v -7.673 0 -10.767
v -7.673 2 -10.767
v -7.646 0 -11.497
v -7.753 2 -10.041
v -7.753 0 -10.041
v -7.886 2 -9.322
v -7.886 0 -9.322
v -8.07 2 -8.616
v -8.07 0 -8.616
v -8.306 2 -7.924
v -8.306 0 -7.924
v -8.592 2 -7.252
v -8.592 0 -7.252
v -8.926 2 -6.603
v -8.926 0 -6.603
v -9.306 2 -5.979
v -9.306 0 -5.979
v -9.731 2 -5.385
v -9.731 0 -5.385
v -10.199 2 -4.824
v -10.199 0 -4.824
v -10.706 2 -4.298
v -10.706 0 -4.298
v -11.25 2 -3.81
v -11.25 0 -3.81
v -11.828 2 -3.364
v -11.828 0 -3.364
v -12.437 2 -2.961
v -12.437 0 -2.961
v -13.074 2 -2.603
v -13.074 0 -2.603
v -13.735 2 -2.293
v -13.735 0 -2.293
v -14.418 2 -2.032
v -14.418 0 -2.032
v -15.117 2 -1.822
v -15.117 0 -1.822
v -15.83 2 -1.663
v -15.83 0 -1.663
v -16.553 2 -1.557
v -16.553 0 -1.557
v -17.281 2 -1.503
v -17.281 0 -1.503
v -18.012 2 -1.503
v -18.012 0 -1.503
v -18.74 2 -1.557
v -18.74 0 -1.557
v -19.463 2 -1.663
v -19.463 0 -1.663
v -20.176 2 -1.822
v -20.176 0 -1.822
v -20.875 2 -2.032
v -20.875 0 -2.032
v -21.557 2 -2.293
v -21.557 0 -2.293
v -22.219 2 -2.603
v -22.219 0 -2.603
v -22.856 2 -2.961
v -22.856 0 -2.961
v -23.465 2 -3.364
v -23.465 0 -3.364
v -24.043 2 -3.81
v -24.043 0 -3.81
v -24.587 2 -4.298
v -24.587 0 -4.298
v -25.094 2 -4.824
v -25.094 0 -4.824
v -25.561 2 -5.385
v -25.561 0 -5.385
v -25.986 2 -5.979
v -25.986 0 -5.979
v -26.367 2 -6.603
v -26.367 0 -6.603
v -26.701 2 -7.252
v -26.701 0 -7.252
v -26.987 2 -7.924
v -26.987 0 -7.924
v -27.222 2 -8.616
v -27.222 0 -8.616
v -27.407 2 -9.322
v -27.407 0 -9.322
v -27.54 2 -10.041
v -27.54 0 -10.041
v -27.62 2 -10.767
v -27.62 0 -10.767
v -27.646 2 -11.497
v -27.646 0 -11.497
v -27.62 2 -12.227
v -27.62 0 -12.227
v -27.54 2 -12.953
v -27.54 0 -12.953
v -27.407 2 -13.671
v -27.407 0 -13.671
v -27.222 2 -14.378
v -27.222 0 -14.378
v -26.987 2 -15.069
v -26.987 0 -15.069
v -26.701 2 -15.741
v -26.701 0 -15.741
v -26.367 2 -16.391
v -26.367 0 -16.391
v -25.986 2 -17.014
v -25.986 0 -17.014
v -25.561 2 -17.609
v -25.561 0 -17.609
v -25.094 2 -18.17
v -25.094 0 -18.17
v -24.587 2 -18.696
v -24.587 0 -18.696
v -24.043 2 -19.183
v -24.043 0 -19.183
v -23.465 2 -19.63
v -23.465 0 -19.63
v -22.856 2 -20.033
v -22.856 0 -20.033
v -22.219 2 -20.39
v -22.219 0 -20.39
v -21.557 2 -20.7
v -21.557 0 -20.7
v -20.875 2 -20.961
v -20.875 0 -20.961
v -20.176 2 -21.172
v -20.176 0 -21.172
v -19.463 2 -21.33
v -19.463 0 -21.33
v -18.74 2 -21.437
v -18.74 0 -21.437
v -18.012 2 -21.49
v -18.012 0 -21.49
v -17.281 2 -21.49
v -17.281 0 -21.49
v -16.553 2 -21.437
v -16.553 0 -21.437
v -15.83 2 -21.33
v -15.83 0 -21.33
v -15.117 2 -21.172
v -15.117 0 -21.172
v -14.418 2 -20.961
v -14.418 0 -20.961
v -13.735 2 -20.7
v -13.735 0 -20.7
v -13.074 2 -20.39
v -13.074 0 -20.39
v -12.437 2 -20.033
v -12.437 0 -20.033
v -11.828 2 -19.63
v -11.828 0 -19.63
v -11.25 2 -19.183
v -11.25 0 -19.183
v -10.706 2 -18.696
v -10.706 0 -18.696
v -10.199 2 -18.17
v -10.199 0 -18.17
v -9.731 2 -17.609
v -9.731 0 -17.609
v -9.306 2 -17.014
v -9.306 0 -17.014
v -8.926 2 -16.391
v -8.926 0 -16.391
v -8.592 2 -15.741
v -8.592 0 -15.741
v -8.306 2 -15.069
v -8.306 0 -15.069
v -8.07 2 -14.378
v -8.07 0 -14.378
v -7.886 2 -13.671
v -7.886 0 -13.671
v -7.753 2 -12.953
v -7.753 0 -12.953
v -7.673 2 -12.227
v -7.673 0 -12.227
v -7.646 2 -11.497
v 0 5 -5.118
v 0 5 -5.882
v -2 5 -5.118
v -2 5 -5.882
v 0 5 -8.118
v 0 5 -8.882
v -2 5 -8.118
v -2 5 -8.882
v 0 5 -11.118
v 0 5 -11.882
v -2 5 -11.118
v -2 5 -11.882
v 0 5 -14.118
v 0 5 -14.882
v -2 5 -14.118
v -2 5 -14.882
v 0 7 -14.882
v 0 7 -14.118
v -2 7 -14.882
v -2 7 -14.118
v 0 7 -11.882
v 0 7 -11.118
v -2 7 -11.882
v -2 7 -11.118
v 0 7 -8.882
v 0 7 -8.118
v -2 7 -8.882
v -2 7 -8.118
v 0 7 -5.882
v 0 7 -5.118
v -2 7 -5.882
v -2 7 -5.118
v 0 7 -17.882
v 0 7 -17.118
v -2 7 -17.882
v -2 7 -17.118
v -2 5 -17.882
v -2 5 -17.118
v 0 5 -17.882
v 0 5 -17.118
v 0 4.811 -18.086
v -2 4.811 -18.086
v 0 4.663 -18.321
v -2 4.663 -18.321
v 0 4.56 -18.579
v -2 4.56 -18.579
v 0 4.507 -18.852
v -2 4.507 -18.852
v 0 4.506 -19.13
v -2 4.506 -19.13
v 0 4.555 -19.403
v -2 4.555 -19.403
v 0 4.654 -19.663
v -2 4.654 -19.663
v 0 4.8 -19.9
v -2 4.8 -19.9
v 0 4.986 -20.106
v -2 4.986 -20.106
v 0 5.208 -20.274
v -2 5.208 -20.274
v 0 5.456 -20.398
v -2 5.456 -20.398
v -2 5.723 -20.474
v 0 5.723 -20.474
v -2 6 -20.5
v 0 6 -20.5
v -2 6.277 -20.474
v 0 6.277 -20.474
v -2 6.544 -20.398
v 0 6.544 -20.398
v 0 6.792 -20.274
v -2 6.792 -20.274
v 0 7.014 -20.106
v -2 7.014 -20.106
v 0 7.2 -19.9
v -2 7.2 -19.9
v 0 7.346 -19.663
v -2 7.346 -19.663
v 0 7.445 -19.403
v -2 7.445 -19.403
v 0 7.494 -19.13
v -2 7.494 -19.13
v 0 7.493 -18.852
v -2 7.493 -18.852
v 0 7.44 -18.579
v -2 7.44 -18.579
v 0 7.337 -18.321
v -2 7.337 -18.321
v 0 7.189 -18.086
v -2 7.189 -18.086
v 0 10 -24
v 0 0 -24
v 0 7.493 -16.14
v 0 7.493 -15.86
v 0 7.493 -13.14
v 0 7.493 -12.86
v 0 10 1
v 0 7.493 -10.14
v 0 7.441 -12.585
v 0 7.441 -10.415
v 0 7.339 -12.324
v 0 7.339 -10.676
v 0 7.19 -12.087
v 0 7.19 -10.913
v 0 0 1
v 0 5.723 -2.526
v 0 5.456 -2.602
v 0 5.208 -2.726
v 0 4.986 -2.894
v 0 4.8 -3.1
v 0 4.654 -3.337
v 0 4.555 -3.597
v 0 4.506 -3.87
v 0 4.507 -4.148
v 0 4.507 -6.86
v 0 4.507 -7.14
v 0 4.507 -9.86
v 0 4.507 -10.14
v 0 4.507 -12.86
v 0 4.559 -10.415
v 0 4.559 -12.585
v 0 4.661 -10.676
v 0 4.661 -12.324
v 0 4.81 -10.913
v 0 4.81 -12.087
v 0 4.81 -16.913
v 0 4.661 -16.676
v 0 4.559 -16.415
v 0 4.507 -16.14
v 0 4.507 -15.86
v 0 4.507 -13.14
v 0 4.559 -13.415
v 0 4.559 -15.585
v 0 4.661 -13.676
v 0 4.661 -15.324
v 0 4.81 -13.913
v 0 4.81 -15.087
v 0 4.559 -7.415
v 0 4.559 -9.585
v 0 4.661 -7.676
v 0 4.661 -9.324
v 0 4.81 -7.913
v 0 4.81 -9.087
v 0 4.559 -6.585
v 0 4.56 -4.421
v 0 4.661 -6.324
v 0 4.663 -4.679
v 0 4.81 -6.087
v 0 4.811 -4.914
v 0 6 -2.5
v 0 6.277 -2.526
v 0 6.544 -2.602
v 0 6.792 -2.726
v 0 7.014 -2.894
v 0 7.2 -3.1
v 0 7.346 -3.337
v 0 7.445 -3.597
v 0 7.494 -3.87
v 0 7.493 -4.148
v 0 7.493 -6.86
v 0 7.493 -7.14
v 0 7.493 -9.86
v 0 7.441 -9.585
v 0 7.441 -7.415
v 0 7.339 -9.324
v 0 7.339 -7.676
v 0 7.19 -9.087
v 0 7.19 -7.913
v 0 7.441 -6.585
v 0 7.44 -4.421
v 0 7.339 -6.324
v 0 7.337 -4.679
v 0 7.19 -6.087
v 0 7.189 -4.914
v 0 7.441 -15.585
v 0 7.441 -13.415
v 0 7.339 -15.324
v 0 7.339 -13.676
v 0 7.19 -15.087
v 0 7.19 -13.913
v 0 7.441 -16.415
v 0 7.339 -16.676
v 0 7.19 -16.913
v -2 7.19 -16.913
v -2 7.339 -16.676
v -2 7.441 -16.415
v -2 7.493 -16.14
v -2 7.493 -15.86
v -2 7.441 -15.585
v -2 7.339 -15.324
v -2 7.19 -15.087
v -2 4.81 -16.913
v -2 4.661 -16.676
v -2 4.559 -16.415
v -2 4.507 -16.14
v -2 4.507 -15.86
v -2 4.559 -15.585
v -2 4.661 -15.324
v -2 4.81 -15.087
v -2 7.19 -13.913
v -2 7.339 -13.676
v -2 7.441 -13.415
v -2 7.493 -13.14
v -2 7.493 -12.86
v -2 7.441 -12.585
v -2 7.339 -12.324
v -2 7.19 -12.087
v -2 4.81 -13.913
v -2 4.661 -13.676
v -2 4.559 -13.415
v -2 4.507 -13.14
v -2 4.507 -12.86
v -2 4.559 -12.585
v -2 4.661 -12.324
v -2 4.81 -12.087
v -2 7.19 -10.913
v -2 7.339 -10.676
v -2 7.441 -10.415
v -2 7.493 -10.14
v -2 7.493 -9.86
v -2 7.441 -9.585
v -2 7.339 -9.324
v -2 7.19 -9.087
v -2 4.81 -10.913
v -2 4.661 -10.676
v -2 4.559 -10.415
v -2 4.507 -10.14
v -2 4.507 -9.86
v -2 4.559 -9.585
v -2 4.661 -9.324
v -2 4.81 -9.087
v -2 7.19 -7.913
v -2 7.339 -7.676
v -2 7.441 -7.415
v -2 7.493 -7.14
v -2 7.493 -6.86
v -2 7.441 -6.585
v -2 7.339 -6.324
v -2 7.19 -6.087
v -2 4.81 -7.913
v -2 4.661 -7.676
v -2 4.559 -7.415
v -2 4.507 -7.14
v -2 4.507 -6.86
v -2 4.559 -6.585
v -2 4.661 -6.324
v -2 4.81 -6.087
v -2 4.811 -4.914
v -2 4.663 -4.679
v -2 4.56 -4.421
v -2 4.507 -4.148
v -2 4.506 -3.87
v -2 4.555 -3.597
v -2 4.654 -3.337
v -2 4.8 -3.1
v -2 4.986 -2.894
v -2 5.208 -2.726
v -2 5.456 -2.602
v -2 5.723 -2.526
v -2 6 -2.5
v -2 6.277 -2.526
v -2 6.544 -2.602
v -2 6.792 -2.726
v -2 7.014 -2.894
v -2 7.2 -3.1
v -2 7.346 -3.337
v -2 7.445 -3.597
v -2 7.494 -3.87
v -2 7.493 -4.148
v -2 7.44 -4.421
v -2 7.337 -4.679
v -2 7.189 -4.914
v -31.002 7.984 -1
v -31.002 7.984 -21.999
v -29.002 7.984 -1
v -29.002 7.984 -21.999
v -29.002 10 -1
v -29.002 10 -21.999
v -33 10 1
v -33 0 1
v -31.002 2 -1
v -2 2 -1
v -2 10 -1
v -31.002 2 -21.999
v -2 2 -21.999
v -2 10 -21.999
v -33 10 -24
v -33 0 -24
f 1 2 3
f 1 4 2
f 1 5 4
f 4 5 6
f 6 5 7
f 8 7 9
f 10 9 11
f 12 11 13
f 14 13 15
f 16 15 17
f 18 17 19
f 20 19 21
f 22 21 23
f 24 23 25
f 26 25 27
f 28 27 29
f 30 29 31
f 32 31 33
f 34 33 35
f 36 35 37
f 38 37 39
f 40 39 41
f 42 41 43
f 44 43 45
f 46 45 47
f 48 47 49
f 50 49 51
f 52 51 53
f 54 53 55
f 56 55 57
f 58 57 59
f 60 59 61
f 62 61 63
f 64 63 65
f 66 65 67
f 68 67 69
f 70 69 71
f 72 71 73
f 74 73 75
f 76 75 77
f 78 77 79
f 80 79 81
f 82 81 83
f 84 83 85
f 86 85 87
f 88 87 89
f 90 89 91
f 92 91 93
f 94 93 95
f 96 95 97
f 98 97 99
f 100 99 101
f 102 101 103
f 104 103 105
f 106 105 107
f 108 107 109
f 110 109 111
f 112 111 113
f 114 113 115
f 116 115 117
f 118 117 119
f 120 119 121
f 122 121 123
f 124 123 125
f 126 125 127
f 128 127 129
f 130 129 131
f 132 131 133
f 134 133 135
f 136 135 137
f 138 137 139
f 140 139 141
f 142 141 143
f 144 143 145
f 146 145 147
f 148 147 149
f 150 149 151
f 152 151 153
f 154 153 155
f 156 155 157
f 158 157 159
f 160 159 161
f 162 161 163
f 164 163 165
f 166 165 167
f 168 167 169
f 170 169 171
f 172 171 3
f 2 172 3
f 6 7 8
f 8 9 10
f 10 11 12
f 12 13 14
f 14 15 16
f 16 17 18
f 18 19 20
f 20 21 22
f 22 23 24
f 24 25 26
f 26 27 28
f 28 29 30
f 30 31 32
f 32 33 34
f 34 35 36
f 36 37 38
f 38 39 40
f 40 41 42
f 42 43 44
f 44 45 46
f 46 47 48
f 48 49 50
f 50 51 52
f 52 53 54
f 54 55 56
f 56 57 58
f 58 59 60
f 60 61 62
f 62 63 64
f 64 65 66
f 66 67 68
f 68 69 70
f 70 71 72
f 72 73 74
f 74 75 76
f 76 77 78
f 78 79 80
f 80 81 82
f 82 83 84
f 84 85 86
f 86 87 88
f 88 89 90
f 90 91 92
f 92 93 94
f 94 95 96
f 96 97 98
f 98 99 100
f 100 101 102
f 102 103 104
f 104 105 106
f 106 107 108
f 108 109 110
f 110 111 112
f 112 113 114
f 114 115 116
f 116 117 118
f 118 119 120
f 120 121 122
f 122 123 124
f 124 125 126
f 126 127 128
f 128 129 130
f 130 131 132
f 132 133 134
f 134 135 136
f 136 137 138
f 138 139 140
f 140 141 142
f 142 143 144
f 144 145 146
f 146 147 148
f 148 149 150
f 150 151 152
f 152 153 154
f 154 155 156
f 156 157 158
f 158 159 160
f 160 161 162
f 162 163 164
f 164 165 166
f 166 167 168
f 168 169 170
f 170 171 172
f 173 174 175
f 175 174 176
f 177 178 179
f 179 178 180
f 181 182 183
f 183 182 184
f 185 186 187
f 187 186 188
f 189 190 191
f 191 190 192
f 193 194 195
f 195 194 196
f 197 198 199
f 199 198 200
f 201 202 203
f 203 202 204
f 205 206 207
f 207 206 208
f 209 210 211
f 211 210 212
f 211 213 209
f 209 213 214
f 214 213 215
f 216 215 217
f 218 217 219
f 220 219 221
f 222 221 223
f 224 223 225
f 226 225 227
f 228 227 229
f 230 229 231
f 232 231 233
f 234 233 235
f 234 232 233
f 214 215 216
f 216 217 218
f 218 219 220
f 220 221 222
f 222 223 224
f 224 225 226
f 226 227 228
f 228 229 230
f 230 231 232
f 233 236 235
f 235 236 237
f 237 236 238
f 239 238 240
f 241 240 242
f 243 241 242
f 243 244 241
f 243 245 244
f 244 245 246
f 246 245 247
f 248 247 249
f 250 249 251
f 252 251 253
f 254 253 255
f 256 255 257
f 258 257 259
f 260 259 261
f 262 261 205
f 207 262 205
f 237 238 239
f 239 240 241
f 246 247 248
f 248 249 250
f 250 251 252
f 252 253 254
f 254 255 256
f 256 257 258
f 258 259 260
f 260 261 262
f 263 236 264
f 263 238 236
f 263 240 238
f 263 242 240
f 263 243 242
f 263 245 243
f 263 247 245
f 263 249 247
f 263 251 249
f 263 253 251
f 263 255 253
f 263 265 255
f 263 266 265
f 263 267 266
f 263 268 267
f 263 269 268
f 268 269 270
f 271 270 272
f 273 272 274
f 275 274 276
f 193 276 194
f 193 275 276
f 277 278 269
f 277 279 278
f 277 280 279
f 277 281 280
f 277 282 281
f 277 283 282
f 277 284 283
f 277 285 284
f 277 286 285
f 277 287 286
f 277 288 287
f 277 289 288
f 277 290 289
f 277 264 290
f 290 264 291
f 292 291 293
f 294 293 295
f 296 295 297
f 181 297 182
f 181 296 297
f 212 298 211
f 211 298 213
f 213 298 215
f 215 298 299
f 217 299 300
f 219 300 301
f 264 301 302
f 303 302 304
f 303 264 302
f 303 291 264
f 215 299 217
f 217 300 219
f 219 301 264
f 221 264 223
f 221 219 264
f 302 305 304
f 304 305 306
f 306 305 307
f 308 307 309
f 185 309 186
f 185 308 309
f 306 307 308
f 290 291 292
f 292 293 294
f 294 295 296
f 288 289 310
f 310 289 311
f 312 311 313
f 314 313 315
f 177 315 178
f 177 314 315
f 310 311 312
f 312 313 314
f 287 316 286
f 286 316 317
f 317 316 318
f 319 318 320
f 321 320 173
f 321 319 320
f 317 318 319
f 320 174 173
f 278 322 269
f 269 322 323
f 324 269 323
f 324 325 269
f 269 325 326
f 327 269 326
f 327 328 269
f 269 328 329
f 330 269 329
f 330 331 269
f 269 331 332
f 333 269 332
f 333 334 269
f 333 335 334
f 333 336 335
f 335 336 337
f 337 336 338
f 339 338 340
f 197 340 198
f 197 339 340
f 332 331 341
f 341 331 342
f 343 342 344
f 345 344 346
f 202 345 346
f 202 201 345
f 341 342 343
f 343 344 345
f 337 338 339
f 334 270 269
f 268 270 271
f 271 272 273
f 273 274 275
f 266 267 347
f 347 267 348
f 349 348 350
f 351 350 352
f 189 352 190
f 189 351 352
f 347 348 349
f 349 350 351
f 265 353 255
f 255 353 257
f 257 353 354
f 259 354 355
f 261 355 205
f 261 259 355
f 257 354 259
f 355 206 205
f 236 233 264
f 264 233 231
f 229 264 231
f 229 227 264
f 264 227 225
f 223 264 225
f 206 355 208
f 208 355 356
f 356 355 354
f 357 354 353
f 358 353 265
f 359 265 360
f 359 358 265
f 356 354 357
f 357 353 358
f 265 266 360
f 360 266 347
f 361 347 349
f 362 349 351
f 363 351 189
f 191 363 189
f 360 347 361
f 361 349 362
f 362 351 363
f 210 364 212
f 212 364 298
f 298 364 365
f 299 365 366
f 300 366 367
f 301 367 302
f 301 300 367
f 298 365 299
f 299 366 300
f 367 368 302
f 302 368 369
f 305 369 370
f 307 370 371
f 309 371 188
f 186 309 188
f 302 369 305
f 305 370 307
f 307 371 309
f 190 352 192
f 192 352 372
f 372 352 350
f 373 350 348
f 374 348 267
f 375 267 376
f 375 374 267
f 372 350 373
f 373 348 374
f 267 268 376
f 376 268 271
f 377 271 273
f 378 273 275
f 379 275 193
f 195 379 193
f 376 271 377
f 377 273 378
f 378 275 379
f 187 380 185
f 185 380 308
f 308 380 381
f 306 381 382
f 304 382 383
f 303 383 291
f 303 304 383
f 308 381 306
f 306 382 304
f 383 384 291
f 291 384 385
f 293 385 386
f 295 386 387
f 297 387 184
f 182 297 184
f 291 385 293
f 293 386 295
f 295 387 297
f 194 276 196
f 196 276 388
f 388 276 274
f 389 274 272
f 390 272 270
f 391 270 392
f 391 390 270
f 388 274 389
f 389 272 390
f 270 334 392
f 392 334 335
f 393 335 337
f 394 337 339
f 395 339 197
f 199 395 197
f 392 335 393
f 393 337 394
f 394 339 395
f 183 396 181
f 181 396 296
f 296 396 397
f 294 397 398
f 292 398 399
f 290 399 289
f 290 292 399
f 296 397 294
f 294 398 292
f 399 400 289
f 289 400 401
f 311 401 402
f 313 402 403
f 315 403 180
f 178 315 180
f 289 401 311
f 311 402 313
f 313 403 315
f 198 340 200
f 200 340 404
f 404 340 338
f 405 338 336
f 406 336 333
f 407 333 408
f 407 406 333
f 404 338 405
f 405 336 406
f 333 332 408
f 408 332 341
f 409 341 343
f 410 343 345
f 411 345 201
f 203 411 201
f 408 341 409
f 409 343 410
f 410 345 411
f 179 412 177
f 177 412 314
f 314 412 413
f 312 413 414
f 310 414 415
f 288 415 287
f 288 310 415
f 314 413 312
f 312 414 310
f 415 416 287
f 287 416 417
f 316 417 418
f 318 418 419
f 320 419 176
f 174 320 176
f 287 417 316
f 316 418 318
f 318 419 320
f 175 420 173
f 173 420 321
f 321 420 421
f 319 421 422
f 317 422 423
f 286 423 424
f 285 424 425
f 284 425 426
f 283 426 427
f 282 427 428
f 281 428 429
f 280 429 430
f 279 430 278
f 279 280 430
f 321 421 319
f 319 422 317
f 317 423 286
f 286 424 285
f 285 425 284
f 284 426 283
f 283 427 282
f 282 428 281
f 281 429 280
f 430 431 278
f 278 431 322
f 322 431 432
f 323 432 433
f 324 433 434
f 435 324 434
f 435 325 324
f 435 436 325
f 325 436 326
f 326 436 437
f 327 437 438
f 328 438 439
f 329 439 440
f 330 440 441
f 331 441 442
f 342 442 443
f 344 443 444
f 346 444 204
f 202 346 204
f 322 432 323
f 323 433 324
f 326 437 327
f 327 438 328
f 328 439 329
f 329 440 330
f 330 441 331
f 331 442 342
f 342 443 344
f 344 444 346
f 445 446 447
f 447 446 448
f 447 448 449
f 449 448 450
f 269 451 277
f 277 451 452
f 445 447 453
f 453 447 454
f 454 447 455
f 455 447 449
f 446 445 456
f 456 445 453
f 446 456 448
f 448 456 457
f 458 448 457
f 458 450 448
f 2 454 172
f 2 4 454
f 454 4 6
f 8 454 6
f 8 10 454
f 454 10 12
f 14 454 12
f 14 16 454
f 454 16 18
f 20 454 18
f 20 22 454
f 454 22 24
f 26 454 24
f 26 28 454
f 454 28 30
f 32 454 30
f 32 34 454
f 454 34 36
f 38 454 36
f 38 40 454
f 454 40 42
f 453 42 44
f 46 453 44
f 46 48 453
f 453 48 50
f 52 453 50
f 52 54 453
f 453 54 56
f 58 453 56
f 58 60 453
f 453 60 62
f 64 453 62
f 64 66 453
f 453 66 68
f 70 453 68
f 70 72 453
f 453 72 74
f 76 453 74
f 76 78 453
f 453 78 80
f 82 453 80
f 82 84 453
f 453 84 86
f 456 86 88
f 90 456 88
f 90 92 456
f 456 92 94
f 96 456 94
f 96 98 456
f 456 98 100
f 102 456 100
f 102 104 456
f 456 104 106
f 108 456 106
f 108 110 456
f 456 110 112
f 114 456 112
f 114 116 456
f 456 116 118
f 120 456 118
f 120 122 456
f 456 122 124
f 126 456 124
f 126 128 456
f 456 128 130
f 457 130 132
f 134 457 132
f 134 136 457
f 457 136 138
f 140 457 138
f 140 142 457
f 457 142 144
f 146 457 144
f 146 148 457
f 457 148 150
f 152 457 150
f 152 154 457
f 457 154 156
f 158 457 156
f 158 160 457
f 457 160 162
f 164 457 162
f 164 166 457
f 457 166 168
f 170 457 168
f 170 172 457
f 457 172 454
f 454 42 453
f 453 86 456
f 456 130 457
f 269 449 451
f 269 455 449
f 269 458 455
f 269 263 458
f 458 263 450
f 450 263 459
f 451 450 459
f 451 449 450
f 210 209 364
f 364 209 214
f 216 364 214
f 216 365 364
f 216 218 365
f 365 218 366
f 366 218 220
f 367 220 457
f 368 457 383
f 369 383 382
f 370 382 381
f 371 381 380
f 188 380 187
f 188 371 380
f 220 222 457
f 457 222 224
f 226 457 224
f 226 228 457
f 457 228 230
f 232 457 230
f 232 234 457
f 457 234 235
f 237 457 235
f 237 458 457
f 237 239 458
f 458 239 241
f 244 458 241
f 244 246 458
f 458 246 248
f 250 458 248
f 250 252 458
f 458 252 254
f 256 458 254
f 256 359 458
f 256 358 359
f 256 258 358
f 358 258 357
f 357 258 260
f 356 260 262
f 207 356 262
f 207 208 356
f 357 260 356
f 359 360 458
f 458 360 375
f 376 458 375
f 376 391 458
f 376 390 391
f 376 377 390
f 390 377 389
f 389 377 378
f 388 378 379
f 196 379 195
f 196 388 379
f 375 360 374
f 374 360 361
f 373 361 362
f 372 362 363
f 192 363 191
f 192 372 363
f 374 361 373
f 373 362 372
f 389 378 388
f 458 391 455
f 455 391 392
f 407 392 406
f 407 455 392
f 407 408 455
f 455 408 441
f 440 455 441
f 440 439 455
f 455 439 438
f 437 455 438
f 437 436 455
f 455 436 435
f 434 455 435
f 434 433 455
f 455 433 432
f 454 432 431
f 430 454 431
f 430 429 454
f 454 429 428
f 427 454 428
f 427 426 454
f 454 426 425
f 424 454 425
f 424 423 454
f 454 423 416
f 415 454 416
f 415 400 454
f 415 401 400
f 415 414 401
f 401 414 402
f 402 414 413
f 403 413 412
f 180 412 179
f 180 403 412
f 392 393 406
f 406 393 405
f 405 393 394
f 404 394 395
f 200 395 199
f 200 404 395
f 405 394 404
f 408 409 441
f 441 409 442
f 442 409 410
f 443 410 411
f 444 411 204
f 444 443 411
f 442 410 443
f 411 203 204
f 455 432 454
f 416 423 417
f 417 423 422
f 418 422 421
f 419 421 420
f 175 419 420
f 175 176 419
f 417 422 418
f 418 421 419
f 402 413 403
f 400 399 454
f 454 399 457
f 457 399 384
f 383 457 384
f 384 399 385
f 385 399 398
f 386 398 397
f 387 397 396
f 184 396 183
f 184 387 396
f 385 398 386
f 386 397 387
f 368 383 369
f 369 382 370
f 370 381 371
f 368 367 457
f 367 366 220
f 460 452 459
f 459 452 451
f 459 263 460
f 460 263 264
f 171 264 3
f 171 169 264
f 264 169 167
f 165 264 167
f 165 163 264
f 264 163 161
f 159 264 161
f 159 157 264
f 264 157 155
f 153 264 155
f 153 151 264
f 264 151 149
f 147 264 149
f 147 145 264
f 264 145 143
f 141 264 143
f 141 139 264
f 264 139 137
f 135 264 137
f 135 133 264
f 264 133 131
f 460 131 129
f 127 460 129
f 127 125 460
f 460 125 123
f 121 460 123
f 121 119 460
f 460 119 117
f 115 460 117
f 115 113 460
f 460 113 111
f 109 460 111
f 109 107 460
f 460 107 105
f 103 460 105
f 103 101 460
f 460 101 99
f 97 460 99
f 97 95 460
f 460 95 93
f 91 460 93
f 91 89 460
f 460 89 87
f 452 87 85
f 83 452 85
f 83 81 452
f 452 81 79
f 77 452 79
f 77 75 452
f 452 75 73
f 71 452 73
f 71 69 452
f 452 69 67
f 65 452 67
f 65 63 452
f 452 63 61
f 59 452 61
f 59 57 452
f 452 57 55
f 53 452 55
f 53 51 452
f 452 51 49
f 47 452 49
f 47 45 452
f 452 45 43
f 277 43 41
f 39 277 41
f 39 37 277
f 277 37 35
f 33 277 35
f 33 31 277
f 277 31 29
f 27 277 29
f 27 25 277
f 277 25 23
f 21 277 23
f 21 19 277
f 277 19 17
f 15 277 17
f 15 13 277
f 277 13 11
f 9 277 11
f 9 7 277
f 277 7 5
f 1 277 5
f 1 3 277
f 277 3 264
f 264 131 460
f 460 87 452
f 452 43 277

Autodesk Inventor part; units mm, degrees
ref_plane "YZ Plane" through (0, 0, 0) normal (1, 0, 0) x (0, 1, 0)
ref_plane "XZ Plane" through (0, 0, 0) normal (0, 1, 0) x (-1, 0, 0)
ref_plane "XY Plane" through (0, 0, 0) normal (0, 0, 1) x (1, 0, 0)
sketch "Sketch1" plane through (0, 0, 0) normal (0, 0, 1) x (1, 0, 0)
  point P0 (0, 0)
sketch "Sketch2" plane through (0, 0, 0) normal (0, 1, 0) x (-1, 0, 0)
  point P0 (0, 0)
sketch "Sketch3" plane through (0, 0, 0) normal (0, 0, 1) x (1, 0, 0)
  point P0 (0, 0)
sketch "Sketch4" plane through (0, 0, 0) normal (0, 1, 0) x (-1, 0, 0)
  line L0 (33, 1) -> (0, 1)
  line L1 (0, 1) -> (0, -24)
  line L2 (0, -24) -> (33, -24)
  line L3 (33, -24) -> (33, 1)
  dimension "d0" = 33
  dimension "d2" = 25
extrude "Extrusion1" add sketch "Sketch4" along normal blind 2
sketch "Sketch8" plane through (0, 2, 0) normal (0, 1, 0) x (1, 0, 0)
  line L0 (-0.0049, 24) -> (-32.9741, 24) projected
  line L1 (0, 0) -> (-2, 0)
  line L2 (-2, 0) -> (-2, 24)
  line L3 (-2, 24) -> (0, 24)
  line L4 (0, 24) -> (0, 0)
  dimension "d18" = 2
sketch "Sketch13" plane through (0, 2, 0) normal (0, 1, 0) x (1, 0, 0)
  point P0 (0, 0)
sketch "Sketch14" plane through (0, 2, 0) normal (0, 1, 0) x (1, 0, 0)
  point P0 (0, 0)
extrude "Extrusion9" add sketch "Sketch8" along normal blind 8
sketch "Sketch15" plane through (0, 2, 0) normal (0, 1, 0) x (1, 0, 0)
  line L0 (-33, -1) -> (0, -1)
  line L1 (0, -1) -> (0, 1)
  line L2 (0, 1) -> (-33, 1)
  line L3 (-33, 1) -> (-33, -1)
  point P0 (0, 0)
  dimension "d32" = 2
extrude "Extrusion10" add sketch "Sketch15" along normal blind 8
sketch "Sketch16" plane through (0, 2, 0) normal (0, 1, 0) x (1, 0, 0)
  line L0 (0, 0) -> (0, 24) projected
  line L1 (-33, 24) -> (0, 24)
  line L2 (0, 24) -> (0, 21.9991)
  line L3 (0, 21.9991) -> (-33, 21.9991)
  line L4 (-33, 21.9991) -> (-33, 24)
extrude "Extrusion11" add sketch "Sketch16" along normal blind 8
sketch "Sketch17" plane through (0, 2, 0) normal (0, 1, 0) x (1, 0, 0)
  line L0 (0, 24) -> (-33, 24) projected
  line L1 (-33, -1) -> (-31.0023, -1)
  line L2 (-31.0023, -1) -> (-31.0023, 24)
  line L3 (-31.0023, 24) -> (-33, 24)
  line L4 (-33, 24) -> (-33, -1)
  point P0 (0, 0)
extrude "Extrusion12" add sketch "Sketch17" along normal blind 8
sketch "Sketch18" plane through (-31.0023, 2, -1) normal (1, 0, 0) x (0, 0, -1)
  line L0 (23, -2) -> (23, 8) projected
  line L1 (-2, 8) -> (23, 8)
  line L2 (23, 8) -> (23, 5.9835)
  line L3 (23, 5.9835) -> (-2, 5.9835)
  line L4 (-2, 5.9835) -> (-2, 8)
  point P0 (-1, -2)
extrude "Extrusion13" add sketch "Sketch18" along normal blind 2
sketch "Sketch19" plane through (0, 0, 1) normal (1, 0, 0) x (0, 0, -1)
  point P0 (1, 0)
sketch "Sketch20" plane through (0, 0, 1) normal (1, 0, 0) x (0, 0, -1)
  circle A0 centre (5, 6) radius 1.5
  line L0 (0, 0) -> (25, 0) projected
  line L1 (0, 0) -> (0, 10) projected
  circle A1 centre (8, 6) radius 1.5
  circle A2 centre (11, 6) radius 1.4979
  circle A3 centre (14, 6) radius 1.5
  circle A4 centre (17, 6) radius 1.5
  circle A5 centre (20, 6) radius 1.5
  line L2 (25, 0) -> (25, 10) projected
  point P0 (1, 0)
  dimension "d41" = 6
  dimension "d42" = 5
  dimension "d43" = 3
  dimension "d44" = 3
  dimension "d45" = 3
  dimension "d46" = 3
  dimension "d47" = 3
  dimension "d48" = 3
  dimension "d49" = 3
  dimension "d50" = 3
  dimension "d51" = 3
  dimension "d52" = 3
  dimension "d60" = 5
hole "Hole1" at (0, 6, -4) at (0, 6, -7) at (0, 6, -10) at (0, 6, -13) at (0, 6, -16) at (0, 6, -19) direction (-1, 0, 0) diameter 3 depth 2 tip angle 118
sketch "Sketch21" plane through (-2, 2, -1) normal (-1, 0, 0) x (0, 0, 1)
  point P0 (1, -2)
sketch "Sketch22" plane through (-2, 2, -1) normal (-1, 0, 0) x (0, 0, 1)
  point P0 (1, -2)
sketch "Sketch23" plane through (0, 0, 1) normal (1, 0, 0) x (0, 0, -1)
  line L0 (5, 7) -> (20.6591, 7)
  line L1 (20.6591, 7) -> (20.6591, 5)
  line L2 (20.6591, 5) -> (5, 5)
  line L3 (5, 5) -> (5, 7)
  arc A0 (12.5, 6) -> (9.5, 6) centre (11, 6) ccw projected
  arc A1 (9.5, 6) -> (12.5, 6) centre (11, 6) ccw projected
  point P0 (1, 0)
  dimension "d62" = 0.5
  dimension "d64" = 0.5
extrude "Extrusion14" cut sketch "Sketch23" against normal blind 9.525 contours L0 A0 A1 L2 L3 | L0 A0 A1 L2 | L0 L1 L2 A1 A0
sketch "Sketch24" plane through (0, 0, 0) normal (0, -1, 0) x (1, 0, 0)
  point P0 (0, 0)
sketch "Sketch26" plane through (0, 0, 0) normal (0, -1, 0) x (1, 0, 0)
  point P0 (0, 0)
sketch "Sketch27" plane through (0, 0, 0) normal (0, -1, 0) x (1, 0, 0)
  circle A0 centre (-17.6464, -11.4968) radius 10
  line L0 (-33, 1) -> (0, 1) projected
  line L1 (0, -24) -> (-33, -24) projected
  point P0 (0, 0)
  dimension "d69" = 20
  dimension "d70" = 12.4968
  dimension "d71" = 12.5032
hole "Hole2" at (-17.6464, 0, -11.4968) direction (0, 1, 0) diameter 20 depth 2 tip angle 118
properties part number "Sensor_Bracket"
